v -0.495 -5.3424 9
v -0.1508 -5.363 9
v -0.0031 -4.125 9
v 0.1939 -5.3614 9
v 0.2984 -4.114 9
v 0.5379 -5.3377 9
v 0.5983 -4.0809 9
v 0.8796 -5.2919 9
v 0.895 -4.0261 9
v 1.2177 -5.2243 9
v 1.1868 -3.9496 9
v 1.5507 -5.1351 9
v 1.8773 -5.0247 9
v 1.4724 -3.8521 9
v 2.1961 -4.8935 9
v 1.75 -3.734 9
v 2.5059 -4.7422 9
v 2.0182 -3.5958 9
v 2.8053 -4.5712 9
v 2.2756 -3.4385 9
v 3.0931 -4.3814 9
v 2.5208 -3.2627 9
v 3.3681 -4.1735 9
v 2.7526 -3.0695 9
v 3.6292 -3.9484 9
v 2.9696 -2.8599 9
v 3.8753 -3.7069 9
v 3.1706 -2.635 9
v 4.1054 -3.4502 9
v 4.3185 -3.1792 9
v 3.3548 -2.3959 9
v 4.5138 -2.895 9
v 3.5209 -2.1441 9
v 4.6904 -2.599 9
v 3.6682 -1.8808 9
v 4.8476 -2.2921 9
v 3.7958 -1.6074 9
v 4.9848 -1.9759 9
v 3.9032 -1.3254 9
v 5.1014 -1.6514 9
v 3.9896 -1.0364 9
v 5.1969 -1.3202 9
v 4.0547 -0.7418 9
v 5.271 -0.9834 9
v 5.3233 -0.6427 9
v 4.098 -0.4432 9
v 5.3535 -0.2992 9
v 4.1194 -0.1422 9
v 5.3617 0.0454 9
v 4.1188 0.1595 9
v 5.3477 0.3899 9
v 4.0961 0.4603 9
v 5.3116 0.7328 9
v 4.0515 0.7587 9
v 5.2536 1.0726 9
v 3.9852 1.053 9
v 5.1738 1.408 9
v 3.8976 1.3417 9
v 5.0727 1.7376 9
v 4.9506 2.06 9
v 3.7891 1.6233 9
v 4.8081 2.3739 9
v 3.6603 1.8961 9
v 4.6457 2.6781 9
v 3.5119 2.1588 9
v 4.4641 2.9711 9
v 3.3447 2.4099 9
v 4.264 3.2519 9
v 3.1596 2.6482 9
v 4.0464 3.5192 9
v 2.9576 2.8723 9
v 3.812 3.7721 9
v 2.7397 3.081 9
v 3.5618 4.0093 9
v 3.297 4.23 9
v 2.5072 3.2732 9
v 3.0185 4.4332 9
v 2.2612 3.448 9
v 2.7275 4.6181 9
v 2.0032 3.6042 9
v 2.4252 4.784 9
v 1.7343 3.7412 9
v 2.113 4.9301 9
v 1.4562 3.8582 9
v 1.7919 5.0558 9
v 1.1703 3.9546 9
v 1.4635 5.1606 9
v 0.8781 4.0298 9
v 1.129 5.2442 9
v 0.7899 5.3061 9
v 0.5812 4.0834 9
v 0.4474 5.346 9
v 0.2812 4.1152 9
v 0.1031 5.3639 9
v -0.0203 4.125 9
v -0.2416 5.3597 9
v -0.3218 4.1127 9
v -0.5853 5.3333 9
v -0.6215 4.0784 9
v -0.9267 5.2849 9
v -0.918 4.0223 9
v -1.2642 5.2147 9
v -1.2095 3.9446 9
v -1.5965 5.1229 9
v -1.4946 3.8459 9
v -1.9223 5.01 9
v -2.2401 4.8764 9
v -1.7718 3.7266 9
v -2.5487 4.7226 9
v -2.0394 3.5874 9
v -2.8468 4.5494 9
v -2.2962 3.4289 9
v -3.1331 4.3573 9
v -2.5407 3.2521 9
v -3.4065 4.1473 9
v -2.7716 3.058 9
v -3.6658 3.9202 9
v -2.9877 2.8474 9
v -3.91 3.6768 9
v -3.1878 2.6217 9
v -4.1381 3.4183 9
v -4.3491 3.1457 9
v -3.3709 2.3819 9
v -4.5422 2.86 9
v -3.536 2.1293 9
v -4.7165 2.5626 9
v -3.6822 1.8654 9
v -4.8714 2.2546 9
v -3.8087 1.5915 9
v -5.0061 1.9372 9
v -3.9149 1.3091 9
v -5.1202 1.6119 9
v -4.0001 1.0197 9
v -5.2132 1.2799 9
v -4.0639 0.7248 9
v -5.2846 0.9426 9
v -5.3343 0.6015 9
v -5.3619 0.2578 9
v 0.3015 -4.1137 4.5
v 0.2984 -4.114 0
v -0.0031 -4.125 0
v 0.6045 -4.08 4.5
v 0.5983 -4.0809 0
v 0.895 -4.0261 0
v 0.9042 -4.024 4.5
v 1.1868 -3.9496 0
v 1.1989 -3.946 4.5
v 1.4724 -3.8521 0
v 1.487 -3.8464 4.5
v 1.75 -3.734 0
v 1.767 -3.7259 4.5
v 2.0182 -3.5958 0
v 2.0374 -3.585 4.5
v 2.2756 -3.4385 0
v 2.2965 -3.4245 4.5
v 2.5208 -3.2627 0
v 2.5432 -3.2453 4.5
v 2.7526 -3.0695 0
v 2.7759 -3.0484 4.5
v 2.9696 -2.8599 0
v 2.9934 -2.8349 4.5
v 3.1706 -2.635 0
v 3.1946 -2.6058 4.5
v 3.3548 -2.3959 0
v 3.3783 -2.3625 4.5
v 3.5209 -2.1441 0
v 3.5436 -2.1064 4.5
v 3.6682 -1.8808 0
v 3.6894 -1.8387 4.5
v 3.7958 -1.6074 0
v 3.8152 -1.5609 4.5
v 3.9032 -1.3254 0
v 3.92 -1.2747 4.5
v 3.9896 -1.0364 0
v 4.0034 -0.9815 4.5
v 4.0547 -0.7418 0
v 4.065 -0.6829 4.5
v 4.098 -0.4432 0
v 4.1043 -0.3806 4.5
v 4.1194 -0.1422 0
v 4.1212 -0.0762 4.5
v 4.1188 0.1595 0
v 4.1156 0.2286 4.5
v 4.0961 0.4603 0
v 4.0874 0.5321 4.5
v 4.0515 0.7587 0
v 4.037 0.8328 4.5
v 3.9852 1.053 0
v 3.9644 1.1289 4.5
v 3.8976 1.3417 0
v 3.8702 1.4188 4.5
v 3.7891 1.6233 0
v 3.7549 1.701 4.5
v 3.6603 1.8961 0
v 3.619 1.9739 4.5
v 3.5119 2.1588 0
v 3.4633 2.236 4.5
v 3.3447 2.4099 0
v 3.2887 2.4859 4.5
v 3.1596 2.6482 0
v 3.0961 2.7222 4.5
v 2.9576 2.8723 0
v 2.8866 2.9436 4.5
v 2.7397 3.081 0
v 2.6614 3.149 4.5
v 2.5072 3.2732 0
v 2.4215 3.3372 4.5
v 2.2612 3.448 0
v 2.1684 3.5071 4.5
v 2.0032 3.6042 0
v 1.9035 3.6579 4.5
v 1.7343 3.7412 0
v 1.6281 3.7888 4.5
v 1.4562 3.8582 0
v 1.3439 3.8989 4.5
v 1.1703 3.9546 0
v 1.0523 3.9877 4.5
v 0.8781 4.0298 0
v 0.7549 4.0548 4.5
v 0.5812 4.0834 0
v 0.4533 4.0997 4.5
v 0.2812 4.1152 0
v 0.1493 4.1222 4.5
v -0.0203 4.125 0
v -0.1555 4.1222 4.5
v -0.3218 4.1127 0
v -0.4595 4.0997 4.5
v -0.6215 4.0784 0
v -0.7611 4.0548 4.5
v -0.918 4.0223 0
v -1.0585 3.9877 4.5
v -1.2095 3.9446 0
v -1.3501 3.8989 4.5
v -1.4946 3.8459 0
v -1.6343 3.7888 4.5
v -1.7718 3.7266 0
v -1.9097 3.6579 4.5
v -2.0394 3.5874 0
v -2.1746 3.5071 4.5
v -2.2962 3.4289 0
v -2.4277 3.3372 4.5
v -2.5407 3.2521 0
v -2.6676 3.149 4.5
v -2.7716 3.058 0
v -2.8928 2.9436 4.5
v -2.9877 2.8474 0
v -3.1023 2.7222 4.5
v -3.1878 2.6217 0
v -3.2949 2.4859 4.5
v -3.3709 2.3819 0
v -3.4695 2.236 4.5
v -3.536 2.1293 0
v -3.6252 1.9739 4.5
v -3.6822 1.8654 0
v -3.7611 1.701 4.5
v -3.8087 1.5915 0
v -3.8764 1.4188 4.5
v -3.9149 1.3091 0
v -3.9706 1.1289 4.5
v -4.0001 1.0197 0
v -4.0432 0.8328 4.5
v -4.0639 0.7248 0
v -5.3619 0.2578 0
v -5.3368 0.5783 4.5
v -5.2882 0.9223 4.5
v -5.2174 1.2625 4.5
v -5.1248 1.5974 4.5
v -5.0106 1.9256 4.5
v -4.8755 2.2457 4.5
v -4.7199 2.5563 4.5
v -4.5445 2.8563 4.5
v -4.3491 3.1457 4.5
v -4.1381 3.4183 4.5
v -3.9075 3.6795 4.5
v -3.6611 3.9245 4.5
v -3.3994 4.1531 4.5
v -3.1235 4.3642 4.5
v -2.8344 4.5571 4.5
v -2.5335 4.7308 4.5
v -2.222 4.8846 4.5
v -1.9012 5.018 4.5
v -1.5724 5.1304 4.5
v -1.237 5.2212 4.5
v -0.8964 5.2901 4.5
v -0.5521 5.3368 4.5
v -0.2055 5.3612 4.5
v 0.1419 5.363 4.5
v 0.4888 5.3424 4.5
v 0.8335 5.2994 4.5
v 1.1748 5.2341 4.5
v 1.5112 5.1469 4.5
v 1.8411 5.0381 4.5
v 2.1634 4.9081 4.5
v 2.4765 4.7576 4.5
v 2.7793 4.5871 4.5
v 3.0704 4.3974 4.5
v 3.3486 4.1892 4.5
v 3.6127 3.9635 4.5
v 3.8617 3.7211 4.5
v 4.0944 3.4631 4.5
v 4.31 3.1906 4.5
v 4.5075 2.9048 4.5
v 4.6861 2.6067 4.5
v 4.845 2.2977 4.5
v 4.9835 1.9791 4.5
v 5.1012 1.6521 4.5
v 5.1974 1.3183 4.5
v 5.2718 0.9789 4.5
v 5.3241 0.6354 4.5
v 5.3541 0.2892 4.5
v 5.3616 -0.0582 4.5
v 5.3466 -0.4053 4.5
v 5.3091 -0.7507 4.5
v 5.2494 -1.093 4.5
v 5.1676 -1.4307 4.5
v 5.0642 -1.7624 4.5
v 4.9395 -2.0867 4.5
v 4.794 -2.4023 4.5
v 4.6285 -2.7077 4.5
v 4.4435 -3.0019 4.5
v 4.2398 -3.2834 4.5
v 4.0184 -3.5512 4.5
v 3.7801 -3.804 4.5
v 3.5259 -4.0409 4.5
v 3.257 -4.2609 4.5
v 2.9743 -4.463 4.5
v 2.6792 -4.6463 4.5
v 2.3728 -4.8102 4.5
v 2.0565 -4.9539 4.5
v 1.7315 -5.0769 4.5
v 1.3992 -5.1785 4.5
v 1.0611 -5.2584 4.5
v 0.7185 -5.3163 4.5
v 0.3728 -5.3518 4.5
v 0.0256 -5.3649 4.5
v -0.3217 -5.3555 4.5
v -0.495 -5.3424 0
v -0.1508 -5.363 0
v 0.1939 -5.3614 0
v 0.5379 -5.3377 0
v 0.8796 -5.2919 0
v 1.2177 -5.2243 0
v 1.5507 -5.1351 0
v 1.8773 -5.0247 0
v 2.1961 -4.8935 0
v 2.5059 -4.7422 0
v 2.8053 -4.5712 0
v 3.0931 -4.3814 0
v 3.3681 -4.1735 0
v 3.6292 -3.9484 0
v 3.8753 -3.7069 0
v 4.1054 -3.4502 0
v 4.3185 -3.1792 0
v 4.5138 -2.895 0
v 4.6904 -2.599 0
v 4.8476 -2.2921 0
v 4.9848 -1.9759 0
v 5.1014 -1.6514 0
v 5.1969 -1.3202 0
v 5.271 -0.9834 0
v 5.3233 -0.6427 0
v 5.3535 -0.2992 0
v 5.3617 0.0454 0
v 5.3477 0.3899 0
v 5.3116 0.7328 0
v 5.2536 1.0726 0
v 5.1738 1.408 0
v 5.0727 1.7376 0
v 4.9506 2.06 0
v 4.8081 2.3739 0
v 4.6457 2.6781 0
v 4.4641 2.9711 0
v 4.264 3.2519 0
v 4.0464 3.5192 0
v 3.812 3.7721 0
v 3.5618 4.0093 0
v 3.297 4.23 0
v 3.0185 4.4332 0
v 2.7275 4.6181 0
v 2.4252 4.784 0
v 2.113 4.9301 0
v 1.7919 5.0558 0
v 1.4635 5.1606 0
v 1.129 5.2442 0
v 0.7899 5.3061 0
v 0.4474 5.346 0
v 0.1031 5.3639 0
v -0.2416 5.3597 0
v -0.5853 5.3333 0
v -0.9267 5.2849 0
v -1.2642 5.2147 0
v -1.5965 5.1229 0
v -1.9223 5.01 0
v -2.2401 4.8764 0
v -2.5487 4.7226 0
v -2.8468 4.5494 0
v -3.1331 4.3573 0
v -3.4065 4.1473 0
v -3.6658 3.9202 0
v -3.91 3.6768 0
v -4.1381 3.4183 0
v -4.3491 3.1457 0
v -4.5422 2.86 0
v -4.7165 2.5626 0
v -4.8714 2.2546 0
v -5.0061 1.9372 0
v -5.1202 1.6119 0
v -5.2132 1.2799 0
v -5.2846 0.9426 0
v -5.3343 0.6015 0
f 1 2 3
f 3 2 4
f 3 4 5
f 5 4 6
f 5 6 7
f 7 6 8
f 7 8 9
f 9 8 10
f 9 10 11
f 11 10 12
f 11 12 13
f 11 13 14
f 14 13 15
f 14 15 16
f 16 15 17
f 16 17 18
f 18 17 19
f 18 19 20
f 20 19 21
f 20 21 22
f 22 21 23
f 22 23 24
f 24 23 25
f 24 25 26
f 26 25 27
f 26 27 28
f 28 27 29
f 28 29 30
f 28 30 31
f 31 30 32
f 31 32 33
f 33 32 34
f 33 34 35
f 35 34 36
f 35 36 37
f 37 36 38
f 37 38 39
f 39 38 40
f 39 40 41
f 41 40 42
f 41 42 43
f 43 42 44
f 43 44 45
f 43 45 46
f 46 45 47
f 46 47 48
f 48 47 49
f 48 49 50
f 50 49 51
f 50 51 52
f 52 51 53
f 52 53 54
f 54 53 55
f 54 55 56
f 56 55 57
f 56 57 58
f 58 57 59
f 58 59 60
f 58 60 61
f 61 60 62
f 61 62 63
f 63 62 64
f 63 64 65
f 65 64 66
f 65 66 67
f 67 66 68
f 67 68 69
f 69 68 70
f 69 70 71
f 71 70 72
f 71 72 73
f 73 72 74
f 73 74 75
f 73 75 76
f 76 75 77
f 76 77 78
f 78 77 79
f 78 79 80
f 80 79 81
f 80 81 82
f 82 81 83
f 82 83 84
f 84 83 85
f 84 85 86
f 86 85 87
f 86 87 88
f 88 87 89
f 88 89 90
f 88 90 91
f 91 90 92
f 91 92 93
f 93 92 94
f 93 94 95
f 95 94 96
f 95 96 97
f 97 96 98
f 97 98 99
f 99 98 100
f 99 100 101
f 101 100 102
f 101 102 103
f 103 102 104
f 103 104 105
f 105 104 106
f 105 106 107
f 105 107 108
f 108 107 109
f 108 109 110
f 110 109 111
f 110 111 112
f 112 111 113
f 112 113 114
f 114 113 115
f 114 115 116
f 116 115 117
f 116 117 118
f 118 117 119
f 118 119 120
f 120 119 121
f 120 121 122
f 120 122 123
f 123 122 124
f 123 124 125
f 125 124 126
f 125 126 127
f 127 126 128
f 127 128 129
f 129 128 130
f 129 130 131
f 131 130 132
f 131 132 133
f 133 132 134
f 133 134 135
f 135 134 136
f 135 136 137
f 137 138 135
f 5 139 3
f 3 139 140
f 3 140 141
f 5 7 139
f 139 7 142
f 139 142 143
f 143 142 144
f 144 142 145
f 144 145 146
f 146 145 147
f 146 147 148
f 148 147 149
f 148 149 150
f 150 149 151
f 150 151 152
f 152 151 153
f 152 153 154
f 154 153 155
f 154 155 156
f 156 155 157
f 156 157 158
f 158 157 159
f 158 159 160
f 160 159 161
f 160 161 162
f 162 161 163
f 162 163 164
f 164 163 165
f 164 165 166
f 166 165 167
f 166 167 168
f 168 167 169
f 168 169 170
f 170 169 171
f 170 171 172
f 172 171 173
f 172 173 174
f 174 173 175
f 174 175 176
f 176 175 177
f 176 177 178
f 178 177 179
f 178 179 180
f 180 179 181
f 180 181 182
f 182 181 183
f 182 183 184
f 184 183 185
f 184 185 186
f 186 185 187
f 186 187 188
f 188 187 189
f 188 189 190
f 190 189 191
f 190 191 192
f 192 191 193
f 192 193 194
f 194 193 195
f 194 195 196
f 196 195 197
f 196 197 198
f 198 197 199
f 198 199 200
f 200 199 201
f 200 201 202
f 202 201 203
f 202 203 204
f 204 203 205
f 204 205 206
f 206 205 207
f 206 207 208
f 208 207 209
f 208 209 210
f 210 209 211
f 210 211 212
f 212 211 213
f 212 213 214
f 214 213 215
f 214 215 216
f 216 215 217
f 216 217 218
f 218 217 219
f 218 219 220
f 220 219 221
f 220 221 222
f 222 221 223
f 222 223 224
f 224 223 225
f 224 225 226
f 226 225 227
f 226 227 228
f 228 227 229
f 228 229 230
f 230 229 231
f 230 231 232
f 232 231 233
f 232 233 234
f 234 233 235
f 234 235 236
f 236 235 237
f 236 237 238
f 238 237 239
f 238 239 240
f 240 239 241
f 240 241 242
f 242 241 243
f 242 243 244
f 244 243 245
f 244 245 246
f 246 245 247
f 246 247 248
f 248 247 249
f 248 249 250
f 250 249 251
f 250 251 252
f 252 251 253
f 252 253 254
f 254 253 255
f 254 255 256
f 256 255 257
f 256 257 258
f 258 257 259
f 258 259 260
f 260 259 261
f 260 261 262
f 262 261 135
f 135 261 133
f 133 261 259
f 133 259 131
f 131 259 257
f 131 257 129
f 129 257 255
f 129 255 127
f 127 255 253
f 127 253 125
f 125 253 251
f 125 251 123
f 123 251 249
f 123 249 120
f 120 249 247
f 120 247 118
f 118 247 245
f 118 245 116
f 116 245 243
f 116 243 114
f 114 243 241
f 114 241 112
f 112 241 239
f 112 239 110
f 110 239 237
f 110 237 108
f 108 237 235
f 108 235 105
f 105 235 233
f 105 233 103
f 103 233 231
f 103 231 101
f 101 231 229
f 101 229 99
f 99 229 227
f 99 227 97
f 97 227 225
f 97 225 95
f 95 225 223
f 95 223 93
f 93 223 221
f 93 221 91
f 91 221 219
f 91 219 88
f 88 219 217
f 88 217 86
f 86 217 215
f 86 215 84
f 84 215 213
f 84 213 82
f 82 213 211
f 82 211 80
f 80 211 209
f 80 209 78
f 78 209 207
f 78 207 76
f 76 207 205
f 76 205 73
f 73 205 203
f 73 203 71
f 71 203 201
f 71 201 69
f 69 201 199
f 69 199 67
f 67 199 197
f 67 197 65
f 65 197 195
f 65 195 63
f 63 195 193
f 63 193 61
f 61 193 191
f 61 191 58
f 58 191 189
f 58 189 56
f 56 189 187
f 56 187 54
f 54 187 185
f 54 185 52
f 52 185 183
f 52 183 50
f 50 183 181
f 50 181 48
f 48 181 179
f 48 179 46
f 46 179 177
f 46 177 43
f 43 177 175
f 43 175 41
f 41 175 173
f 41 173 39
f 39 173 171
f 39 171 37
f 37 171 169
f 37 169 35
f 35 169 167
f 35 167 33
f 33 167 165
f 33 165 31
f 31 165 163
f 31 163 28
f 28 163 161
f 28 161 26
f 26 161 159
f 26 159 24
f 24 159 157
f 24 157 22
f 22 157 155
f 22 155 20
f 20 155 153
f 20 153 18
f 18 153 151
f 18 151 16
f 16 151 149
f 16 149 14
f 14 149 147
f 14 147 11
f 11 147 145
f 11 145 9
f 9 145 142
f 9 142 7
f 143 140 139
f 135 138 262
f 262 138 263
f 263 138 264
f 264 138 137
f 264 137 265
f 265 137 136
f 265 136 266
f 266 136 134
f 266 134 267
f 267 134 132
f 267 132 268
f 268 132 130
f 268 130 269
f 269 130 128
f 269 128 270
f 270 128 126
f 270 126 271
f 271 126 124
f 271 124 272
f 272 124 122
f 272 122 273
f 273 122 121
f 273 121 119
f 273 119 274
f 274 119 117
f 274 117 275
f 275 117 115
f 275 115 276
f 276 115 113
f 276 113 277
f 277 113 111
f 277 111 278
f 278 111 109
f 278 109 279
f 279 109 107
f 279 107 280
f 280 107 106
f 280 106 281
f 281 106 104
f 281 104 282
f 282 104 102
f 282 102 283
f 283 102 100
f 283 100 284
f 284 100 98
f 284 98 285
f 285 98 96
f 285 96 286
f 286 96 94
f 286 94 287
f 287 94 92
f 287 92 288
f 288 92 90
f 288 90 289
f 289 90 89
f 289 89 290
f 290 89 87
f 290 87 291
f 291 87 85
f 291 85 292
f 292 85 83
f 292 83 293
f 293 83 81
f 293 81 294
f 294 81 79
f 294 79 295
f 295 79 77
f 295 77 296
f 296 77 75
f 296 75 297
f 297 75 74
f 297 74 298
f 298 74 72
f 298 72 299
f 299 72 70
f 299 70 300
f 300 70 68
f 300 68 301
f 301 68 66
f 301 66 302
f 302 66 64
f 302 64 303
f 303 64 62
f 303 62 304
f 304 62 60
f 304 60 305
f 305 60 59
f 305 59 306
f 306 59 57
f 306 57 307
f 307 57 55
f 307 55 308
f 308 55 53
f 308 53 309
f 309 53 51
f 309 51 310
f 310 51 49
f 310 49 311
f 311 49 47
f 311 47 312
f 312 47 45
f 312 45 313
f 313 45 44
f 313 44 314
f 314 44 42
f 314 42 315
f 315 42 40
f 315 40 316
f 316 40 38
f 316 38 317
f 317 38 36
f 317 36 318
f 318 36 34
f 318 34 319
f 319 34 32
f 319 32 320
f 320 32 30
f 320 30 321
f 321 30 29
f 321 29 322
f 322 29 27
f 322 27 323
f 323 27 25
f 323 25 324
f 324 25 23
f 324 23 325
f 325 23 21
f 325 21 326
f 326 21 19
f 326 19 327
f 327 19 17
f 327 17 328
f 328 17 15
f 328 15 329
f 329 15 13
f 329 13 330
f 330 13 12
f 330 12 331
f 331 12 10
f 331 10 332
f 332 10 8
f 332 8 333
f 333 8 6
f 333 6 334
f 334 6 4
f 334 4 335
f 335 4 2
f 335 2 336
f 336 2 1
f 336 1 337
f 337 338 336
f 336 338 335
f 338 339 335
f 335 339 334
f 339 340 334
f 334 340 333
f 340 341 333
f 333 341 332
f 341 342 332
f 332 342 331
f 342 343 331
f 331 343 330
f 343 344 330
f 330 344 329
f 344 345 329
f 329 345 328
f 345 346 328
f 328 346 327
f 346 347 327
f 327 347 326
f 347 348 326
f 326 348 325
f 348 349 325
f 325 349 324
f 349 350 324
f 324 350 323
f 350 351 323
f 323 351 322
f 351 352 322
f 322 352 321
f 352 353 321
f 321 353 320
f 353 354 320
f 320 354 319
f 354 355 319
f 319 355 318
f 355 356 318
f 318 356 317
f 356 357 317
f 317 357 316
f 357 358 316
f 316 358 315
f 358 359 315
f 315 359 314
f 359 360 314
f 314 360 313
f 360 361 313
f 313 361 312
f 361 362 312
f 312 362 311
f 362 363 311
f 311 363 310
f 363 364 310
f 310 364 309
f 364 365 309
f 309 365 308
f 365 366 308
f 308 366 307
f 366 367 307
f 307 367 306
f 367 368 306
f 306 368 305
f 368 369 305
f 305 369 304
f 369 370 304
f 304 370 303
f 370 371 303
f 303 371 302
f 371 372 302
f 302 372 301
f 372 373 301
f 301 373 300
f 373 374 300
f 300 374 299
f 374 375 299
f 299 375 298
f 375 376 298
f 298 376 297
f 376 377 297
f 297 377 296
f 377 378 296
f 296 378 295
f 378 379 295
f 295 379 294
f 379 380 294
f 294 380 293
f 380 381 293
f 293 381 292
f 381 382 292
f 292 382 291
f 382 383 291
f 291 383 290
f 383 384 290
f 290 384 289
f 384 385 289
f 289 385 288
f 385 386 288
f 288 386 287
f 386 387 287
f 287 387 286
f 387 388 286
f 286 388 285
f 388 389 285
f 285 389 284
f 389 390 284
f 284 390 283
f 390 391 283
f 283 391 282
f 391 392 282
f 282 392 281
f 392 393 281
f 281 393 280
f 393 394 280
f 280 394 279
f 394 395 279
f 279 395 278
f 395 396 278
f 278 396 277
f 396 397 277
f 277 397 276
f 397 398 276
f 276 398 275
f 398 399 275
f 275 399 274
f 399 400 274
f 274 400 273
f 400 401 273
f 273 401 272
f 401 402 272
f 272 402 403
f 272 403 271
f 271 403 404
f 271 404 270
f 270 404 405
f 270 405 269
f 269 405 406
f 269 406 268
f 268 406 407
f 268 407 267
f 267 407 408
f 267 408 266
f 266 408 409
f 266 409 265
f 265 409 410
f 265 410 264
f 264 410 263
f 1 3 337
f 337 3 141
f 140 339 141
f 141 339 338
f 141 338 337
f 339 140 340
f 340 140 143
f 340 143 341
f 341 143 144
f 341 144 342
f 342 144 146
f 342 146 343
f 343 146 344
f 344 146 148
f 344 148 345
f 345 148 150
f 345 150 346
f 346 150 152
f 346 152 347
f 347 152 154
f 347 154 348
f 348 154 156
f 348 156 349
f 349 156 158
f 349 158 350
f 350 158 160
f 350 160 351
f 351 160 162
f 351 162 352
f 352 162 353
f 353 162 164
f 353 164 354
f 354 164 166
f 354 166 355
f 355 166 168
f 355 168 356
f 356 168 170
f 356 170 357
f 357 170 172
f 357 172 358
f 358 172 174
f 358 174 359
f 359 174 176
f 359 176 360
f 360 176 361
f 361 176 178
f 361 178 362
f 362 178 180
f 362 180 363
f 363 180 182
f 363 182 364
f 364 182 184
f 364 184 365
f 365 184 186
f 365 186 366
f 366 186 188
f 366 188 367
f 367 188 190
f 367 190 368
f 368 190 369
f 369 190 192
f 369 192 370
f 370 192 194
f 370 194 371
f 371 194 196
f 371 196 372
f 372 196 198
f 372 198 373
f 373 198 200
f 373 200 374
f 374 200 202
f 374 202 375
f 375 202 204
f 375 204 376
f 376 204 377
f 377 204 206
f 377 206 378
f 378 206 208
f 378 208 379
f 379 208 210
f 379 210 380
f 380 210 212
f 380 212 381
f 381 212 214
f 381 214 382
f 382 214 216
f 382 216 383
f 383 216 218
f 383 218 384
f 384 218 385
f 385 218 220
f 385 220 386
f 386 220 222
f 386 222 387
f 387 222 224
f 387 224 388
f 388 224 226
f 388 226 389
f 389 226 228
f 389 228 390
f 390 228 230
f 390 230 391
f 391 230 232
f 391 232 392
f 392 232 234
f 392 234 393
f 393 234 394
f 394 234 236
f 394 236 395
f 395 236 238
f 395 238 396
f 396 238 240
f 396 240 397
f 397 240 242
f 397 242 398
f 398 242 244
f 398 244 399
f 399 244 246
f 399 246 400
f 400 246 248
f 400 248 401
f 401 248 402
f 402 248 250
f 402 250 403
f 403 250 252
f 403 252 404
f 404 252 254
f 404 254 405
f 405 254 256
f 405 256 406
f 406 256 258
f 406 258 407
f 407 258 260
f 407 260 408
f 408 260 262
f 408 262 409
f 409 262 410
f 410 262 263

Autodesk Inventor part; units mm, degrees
ref_plane "YZ Plane" through (0, 0, 0) normal (1, 0, 0) x (0, 1, 0)
ref_plane "XZ Plane" through (0, 0, 0) normal (0, 1, 0) x (-1, 0, 0)
ref_plane "XY Plane" through (0, 0, 0) normal (0, 0, 1) x (1, 0, 0)
sketch "Sketch1" plane through (0, 0, 0) normal (0, 0, 1) x (1, 0, 0)
  arc A0 (0, -4.125) -> (-4.0608, 0.7248) centre (0, 0) ccw
  line L0 (0, -4.125) -> (-4.0608, 0.7248)
  arc A1 (-0.4919, -5.3424) -> (-5.3588, 0.2578) centre (0, 0) ccw
  line L1 (0, -4.125) -> (-0.4919, -5.3424)
  line L2 (0, -4.125) -> (1.313, -4.125) construction
  line L3 (-4.0608, 0.7248) -> (-5.3588, 0.2578)
  dimension "d0" = 8.25
  dimension "d1" = 10.73
  dimension "d2" = 112
extrude "Extrusion1" add sketch "Sketch1" along normal blind 19 contours A0 L3 A1 L1
sketch "Sketch2" plane through (0, 0, 19) normal (0, 0, 1) x (1, 0, 0)
  arc A0 (-0.4919, -5.3424) -> (-5.3588, 0.2578) centre (0, 0) ccw projected
  line L0 (0, 5.365) -> (5.365, 0) construction
  line L1 (3.7936, 3.7936) -> (0, 5.365) construction
  line L2 (3.7936, 3.7936) -> (5.365, 0) construction
  line L3 (3.7936, 3.7936) -> (5.5269, 2.0604)
  line L4 (5.5269, 2.0604) -> (35.5269, 32.0604)
  line L5 (35.5269, 32.0604) -> (33.7936, 33.7936)
  line L6 (33.7936, 33.7936) -> (3.7936, 3.7936)
  line L7 (1.9965, 5.5907) -> (31.9965, 35.5907)
  line L8 (31.9965, 35.5907) -> (33.7936, 33.7936)
  line L9 (1.9965, 5.5907) -> (3.7936, 3.7936)
  line L10 (1.9965, 5.5907) -> (5.5269, 2.0604)
  line L11 (5.5269, 2.0604) -> (4.7391, 1.2726)
  line L12 (4.7391, 1.2726) -> (1.2088, 4.8029)
  line L13 (1.2088, 4.8029) -> (1.9965, 5.5907)
  line L14 (-3.7936, 3.7936) -> (-5.365, 0) construction
  line L15 (-3.7936, 3.7936) -> (-2.0604, 5.5269)
  line L16 (-2.0604, 5.5269) -> (-32.0604, 35.5269)
  line L17 (-32.0604, 35.5269) -> (-33.7936, 33.7936)
  line L18 (-33.7936, 33.7936) -> (-3.7936, 3.7936)
  line L19 (-5.5907, 1.9965) -> (-35.5907, 31.9965)
  line L20 (-35.5907, 31.9965) -> (-33.7936, 33.7936)
  line L21 (-5.5907, 1.9965) -> (-3.7936, 3.7936)
  line L22 (-5.5907, 1.9965) -> (-2.0604, 5.5269)
  line L23 (-2.0604, 5.5269) -> (-1.2726, 4.7391)
  line L24 (-1.2726, 4.7391) -> (-4.8029, 1.2088)
  line L25 (-4.8029, 1.2088) -> (-5.5907, 1.9965)
  line L26 (-3.7936, -3.7936) -> (0, -5.365) construction
  line L27 (-3.7936, -3.7936) -> (-5.5269, -2.0604)
  line L28 (-5.5269, -2.0604) -> (-35.5269, -32.0604)
  line L29 (-35.5269, -32.0604) -> (-33.7936, -33.7936)
  line L30 (-33.7936, -33.7936) -> (-3.7936, -3.7936)
  line L31 (-1.9965, -5.5907) -> (-31.9965, -35.5907)
  line L32 (-31.9965, -35.5907) -> (-33.7936, -33.7936)
  line L33 (-1.9965, -5.5907) -> (-3.7936, -3.7936)
  line L34 (-1.9965, -5.5907) -> (-5.5269, -2.0604)
  line L35 (-5.5269, -2.0604) -> (-4.7391, -1.2726)
  line L36 (-4.7391, -1.2726) -> (-1.2088, -4.8029)
  line L37 (-1.2088, -4.8029) -> (-1.9965, -5.5907)
  line L38 (3.7936, -3.7936) -> (5.365, 0) construction
  line L39 (3.7936, -3.7936) -> (2.0604, -5.5269)
  line L40 (2.0604, -5.5269) -> (32.0604, -35.5269)
  line L41 (32.0604, -35.5269) -> (33.7936, -33.7936)
  line L42 (33.7936, -33.7936) -> (3.7936, -3.7936)
  line L43 (5.5907, -1.9965) -> (35.5907, -31.9965)
  line L44 (35.5907, -31.9965) -> (33.7936, -33.7936)
  line L45 (5.5907, -1.9965) -> (3.7936, -3.7936)
  line L46 (5.5907, -1.9965) -> (2.0604, -5.5269)
  line L47 (2.0604, -5.5269) -> (1.2726, -4.7391)
  line L48 (1.2726, -4.7391) -> (4.8029, -1.2088)
  line L49 (4.8029, -1.2088) -> (5.5907, -1.9965)
  dimension "d5" = 30
  dimension "d6" = 30
  dimension "d11" = 360
extrude "Extrusion2" add sketch "Sketch2" against normal blind 2 contours L47 L48 L49 A0 | A0 L39 L47 | L23 L24 L25 A0 | A0 L15 L23 | L11 L12 L13 A0 | A0 L3 L11 | L42 L41 L40 L39 | L45 L43 L44 L42 | A0 L49 L45 | L6 L5 L4 L3 | L9 L7 L8 L6 | A0 L13 L9 | L18 L17 L16 L15 | L21 L19 L20 L18 | A0 L25 L21
sketch "Sketch3" plane through (0, 0, 19) normal (0, 0, 1) x (1, 0, 0)
  circle A0 centre (0, 0) radius 47.75
  circle A1 centre (0, 0) radius 49.75
  dimension "d13" = 95.5
  dimension "d14" = 99.5
extrude "Extrusion3" add sketch "Sketch3" against normal blind 2
sketch "Sketch4" plane through (0, 0, 19) normal (0, 0, 1) x (1, 0, 0)
  line L0 (-57.3156, 53.7161) -> (57.3156, 53.7161)
  line L1 (57.3156, 53.7161) -> (57.3156, -53.7161)
  line L2 (57.3156, -53.7161) -> (-57.3156, -53.7161)
  line L3 (-57.3156, -53.7161) -> (-57.3156, 53.7161)
  line L4 (-57.3156, 53.7161) -> (57.3156, -53.7161) construction
  line L5 (57.3156, 53.7161) -> (-57.3156, -53.7161) construction
  point P0 (0, 0)
extrude "Extrusion4" cut sketch "Sketch4" against normal blind 10
properties part number "GuardTest"
